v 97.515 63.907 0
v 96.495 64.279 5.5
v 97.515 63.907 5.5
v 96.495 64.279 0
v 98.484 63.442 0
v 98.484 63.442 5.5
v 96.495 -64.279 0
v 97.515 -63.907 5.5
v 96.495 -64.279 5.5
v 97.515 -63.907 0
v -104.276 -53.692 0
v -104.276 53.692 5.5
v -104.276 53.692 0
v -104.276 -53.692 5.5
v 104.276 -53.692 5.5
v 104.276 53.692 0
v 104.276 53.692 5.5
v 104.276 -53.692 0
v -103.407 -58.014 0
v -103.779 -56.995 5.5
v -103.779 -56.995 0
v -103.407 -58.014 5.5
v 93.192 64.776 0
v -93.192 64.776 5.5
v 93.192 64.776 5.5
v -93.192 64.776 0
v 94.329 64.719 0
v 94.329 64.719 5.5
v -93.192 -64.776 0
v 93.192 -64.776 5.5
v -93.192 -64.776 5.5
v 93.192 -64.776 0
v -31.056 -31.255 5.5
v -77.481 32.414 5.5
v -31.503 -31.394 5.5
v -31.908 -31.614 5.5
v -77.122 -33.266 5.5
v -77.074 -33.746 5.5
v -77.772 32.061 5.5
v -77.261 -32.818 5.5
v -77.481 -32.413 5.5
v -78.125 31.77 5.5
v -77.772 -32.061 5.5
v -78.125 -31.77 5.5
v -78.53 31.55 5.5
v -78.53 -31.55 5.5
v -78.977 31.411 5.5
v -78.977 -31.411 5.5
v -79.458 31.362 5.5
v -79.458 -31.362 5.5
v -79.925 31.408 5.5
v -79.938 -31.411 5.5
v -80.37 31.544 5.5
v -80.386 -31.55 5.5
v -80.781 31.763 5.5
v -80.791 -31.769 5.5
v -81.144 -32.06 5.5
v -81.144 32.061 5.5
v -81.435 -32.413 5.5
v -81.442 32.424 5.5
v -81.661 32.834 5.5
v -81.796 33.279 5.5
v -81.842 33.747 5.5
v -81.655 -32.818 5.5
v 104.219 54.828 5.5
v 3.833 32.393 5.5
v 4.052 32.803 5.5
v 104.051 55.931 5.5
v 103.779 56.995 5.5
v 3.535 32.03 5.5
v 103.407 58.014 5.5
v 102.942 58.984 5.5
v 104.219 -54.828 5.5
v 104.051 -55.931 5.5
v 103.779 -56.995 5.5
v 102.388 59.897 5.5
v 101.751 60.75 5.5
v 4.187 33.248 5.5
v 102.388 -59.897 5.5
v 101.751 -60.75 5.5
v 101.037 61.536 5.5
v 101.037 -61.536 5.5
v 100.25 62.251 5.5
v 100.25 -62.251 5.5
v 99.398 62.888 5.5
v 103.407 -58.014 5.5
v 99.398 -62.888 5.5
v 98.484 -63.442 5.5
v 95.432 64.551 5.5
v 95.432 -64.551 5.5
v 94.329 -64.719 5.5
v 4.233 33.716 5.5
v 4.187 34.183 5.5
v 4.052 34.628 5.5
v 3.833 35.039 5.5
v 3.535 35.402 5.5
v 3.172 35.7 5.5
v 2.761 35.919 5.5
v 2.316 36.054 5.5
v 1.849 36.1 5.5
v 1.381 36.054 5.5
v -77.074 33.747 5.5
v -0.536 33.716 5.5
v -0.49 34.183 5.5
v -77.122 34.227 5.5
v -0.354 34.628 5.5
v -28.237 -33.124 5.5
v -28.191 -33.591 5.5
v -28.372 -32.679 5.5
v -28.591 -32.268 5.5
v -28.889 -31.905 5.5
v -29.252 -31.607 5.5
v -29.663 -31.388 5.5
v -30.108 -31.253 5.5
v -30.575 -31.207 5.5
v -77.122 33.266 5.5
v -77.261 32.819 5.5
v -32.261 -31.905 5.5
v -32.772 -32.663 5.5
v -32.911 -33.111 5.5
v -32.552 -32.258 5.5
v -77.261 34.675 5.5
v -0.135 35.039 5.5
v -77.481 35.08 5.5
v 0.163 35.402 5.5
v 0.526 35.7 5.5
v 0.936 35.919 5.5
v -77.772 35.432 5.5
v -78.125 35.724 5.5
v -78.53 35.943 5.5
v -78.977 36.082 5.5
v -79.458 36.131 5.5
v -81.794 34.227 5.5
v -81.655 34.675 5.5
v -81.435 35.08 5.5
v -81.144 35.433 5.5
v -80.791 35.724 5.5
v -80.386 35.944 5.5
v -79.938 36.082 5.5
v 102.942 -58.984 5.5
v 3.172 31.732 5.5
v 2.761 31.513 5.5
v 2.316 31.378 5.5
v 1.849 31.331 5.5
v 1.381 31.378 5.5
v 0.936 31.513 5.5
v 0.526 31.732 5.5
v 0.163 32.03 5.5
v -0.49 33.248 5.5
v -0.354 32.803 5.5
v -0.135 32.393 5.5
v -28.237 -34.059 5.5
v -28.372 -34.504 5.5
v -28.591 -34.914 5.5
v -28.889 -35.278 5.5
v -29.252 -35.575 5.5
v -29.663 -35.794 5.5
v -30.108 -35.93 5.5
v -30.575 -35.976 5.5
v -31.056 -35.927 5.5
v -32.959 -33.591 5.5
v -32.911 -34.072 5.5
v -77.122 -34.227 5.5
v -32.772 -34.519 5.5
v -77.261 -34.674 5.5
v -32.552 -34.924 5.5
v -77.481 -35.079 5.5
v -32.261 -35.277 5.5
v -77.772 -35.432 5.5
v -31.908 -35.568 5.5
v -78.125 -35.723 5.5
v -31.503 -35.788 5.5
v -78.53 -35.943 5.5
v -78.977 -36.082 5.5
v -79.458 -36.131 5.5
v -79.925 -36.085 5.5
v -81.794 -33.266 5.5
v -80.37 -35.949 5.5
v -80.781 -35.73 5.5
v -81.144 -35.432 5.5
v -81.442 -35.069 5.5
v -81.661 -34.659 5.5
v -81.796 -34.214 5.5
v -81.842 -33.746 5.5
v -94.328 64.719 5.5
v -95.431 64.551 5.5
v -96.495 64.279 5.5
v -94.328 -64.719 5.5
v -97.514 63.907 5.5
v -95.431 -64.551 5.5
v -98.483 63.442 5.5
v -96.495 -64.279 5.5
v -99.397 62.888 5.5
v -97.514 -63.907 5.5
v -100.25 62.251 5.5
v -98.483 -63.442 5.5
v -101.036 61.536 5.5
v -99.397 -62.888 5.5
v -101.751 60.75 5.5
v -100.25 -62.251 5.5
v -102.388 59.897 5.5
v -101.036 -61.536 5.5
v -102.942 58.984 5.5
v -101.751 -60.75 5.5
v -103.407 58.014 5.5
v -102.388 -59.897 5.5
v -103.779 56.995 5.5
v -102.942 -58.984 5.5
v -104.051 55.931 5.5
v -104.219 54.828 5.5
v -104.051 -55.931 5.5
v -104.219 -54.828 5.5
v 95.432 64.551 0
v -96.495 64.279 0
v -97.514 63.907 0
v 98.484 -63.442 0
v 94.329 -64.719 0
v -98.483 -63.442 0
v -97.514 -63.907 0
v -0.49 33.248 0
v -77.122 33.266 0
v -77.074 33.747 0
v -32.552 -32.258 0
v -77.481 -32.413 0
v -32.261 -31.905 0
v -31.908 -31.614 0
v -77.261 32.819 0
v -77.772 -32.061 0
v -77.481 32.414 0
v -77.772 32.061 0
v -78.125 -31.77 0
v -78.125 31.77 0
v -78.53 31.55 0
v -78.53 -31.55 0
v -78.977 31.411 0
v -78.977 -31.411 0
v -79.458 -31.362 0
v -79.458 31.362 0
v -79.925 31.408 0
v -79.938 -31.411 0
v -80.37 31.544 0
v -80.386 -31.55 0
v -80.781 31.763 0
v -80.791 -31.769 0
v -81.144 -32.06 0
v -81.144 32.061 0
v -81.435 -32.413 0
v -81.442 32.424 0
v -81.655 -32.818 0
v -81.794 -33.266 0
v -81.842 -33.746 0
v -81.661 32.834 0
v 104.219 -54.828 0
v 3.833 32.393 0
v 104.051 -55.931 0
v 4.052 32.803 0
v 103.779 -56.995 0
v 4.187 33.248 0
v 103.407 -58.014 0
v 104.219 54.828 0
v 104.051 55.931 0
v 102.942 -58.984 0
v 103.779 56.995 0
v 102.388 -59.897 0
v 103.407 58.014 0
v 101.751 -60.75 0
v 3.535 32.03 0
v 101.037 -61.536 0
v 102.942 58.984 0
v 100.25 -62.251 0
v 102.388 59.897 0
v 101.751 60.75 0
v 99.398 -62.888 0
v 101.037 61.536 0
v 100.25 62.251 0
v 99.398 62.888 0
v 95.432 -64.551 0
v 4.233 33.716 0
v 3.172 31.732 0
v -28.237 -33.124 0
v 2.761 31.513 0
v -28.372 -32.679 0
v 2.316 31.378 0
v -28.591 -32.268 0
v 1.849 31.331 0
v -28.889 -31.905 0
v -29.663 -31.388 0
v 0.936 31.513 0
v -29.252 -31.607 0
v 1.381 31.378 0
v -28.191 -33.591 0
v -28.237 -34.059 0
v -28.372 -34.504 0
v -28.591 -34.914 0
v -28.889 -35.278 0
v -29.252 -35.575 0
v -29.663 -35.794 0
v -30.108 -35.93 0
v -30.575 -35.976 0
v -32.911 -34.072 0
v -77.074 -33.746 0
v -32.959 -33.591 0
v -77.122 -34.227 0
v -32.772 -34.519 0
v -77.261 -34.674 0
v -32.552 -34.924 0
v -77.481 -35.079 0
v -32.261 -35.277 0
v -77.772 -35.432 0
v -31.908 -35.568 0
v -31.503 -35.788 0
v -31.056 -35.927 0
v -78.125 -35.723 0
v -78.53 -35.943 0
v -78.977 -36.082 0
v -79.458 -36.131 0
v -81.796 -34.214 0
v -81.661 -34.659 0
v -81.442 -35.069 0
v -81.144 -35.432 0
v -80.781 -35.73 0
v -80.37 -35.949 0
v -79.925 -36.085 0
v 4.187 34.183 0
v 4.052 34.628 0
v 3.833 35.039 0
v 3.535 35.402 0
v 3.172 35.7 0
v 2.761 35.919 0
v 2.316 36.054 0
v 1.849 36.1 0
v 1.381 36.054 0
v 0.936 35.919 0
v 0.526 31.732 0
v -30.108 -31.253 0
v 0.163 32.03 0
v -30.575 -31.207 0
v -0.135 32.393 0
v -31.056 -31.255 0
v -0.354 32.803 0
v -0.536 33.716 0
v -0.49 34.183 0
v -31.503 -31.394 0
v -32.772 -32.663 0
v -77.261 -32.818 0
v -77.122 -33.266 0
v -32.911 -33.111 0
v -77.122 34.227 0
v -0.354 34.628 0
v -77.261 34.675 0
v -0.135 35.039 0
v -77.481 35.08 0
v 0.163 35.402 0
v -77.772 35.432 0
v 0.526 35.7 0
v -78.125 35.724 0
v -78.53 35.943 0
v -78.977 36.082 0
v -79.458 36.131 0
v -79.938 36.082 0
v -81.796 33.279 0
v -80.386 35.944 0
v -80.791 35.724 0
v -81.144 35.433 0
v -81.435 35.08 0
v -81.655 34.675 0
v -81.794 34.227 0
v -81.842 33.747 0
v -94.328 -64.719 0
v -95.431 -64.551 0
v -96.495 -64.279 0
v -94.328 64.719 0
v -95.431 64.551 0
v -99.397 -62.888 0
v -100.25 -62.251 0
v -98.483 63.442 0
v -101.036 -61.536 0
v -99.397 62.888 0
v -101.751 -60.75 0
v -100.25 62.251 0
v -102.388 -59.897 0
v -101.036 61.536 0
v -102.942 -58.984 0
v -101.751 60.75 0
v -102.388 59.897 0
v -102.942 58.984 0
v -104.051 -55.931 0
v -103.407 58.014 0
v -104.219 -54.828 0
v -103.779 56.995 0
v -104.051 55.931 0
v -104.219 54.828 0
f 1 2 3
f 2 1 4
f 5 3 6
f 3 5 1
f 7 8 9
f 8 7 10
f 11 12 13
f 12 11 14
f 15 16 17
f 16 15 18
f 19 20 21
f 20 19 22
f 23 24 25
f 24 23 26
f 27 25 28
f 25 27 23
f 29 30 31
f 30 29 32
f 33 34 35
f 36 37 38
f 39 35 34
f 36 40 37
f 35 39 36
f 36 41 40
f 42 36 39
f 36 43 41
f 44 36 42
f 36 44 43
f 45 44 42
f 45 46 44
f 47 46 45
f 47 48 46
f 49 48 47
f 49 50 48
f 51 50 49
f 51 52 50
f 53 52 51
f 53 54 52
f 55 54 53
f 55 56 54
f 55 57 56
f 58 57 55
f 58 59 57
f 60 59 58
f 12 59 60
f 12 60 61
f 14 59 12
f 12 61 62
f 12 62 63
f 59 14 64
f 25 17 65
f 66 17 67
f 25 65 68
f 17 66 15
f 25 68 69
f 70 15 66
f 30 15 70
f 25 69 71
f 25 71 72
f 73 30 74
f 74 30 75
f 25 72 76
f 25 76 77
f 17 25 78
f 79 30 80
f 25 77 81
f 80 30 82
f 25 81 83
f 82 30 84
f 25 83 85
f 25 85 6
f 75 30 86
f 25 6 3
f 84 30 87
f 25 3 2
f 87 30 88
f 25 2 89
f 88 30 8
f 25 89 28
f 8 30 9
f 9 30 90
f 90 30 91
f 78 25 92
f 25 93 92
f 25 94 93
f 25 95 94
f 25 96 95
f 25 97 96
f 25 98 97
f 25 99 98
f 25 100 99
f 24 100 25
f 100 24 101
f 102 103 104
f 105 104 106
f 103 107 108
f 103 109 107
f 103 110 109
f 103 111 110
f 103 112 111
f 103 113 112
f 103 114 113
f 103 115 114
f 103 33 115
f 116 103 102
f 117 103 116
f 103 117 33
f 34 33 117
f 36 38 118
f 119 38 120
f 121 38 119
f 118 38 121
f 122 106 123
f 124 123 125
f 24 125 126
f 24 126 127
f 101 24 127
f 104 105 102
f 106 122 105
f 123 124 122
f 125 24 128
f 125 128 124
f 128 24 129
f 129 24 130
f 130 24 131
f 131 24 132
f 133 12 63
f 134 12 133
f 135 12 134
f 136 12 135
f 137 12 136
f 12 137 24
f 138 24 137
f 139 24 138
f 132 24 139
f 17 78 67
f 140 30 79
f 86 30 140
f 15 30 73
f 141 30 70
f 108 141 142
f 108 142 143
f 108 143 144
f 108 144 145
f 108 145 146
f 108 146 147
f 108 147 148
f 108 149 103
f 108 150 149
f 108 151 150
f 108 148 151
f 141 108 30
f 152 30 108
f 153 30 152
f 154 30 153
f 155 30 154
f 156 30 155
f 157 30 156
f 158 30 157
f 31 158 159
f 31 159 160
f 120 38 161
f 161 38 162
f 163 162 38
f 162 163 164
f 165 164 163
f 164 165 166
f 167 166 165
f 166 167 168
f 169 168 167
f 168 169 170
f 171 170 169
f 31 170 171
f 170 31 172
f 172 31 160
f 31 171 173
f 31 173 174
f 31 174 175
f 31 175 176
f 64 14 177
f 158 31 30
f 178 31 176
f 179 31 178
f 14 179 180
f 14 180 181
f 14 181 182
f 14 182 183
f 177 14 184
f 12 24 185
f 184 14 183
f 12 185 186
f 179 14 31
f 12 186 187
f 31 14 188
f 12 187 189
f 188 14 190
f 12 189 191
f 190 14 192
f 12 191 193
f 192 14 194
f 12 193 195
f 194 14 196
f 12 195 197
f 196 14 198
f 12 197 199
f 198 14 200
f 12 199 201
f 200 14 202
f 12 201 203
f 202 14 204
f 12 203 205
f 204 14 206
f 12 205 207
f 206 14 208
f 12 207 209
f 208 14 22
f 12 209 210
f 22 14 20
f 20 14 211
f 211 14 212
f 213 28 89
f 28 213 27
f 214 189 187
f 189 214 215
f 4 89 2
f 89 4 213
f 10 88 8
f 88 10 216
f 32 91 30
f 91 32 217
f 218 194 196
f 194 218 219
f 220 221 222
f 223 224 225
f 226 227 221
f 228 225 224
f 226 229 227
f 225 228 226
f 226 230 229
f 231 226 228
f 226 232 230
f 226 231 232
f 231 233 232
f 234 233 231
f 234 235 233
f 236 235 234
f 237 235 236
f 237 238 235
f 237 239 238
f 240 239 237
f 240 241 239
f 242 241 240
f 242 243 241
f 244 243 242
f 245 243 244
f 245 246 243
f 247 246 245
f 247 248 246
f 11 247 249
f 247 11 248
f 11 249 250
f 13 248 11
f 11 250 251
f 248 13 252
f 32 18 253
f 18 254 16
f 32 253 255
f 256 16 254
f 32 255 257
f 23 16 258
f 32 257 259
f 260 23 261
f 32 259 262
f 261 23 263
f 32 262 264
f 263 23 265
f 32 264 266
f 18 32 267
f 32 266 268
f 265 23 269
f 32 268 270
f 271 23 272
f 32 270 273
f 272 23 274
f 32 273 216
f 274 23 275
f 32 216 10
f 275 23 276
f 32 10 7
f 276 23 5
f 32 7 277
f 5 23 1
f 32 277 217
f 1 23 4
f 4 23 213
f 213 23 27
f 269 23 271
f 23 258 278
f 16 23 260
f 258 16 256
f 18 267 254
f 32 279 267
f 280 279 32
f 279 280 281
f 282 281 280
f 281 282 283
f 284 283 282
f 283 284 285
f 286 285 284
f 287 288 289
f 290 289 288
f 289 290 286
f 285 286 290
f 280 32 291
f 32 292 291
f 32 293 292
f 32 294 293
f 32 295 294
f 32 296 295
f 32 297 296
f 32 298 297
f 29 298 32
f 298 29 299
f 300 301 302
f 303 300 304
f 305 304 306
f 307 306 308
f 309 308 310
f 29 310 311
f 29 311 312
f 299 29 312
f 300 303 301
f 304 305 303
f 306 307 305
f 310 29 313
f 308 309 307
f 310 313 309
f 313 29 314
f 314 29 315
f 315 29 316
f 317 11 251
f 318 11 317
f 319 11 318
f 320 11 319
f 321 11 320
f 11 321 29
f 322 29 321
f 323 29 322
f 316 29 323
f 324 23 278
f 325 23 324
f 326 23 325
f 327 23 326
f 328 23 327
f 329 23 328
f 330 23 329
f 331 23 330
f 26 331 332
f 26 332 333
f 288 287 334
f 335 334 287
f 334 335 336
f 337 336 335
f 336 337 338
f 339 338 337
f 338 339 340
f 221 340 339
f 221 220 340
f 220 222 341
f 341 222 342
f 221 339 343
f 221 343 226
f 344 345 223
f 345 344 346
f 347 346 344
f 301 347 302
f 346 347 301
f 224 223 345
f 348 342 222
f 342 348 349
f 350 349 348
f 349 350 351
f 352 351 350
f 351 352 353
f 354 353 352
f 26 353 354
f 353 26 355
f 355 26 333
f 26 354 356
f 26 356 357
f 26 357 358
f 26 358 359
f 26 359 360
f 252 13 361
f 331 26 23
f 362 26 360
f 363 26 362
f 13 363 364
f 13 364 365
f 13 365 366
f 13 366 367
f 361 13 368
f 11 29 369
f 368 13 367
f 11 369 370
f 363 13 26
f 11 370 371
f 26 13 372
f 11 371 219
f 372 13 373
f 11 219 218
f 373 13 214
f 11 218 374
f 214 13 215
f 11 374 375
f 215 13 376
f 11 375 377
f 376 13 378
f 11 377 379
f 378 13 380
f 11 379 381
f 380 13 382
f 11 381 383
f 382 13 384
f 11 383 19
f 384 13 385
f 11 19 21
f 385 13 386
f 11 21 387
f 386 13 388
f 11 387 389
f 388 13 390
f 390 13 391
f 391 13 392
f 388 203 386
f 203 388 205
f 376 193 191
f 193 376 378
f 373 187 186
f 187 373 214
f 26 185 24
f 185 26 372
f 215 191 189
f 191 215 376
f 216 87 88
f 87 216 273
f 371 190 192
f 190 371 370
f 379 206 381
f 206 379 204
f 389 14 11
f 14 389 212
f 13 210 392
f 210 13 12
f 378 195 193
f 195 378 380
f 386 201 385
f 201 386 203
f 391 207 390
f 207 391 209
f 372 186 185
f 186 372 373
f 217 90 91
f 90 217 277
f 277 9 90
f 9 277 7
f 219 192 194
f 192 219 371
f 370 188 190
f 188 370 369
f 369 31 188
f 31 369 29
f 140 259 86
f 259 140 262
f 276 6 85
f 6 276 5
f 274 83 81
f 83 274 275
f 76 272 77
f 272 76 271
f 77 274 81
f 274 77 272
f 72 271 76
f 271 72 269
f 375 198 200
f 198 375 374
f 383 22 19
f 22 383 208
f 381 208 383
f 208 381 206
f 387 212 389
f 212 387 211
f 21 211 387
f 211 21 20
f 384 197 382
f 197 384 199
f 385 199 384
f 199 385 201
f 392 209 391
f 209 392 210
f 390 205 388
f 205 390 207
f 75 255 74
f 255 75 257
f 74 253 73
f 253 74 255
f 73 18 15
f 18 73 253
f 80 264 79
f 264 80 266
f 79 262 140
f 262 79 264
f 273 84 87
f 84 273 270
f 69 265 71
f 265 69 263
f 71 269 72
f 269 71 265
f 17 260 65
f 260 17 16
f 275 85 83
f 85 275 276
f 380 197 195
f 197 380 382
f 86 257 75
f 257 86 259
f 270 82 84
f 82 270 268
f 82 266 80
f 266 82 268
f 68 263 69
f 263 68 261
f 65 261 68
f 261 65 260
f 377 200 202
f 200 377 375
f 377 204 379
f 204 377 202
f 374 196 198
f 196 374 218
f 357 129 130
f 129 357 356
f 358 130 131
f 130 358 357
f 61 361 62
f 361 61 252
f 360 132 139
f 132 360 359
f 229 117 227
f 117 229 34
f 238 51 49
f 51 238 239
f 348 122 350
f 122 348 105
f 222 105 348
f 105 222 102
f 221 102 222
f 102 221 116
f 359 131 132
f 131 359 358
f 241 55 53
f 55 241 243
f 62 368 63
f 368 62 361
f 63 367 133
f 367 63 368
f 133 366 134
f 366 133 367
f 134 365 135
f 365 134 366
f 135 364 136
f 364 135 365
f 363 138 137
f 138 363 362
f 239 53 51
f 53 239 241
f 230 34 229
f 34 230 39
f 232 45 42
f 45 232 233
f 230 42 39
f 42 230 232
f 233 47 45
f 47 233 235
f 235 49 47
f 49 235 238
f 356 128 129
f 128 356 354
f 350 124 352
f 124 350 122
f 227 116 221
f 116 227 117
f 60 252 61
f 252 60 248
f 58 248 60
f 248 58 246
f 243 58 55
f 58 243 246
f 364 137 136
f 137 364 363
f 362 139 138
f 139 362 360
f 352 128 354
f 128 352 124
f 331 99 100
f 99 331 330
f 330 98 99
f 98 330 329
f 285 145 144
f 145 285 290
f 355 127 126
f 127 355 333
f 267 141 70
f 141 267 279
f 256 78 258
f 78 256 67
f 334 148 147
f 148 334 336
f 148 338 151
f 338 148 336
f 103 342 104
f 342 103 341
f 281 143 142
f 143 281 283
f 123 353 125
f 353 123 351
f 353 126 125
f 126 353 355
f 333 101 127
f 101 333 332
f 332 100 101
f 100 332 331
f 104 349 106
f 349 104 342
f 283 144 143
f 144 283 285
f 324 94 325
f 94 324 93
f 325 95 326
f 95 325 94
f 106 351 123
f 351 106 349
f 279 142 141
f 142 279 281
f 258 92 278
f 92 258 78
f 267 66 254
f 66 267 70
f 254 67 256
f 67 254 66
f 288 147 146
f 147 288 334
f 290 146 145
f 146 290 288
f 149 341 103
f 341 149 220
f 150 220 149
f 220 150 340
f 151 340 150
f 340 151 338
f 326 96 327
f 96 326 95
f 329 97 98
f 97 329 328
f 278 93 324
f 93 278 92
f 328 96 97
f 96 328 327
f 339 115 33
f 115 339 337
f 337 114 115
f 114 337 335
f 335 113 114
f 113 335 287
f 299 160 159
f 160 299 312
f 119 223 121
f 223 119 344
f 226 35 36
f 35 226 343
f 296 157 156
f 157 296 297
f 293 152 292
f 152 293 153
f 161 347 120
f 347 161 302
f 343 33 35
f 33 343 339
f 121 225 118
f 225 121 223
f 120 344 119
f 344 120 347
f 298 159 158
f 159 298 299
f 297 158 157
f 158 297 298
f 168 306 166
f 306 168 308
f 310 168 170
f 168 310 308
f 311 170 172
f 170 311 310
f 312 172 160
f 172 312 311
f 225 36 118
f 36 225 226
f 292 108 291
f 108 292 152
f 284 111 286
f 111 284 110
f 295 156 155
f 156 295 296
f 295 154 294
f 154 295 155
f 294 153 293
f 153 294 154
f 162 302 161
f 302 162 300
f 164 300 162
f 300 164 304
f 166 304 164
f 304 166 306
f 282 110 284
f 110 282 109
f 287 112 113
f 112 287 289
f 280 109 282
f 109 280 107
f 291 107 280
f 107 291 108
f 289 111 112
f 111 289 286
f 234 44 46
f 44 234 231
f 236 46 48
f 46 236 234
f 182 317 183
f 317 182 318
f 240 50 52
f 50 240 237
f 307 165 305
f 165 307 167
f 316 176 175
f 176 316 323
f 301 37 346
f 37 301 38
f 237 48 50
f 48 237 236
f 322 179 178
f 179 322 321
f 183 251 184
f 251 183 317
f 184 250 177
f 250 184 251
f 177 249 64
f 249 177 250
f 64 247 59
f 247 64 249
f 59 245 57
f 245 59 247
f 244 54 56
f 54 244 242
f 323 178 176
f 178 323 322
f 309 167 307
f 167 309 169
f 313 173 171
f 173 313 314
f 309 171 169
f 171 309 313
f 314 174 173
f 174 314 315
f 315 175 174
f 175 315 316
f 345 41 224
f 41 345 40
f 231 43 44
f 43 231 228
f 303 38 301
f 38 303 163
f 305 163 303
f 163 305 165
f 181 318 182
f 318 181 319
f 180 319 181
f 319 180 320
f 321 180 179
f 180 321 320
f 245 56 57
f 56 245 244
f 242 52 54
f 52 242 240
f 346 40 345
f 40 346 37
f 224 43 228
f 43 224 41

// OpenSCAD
// Module names are of the form poly_<inkscape-path-id>().  As a result,
// you can associate a polygon in this OpenSCAD program with the corresponding
// SVG element in the Inkscape document by looking for the XML element with
// the attribute id="inkscape-path-id".

// fudge value is used to ensure that subtracted solids are a tad taller
// in the z dimension than the polygon being subtracted from.  This helps
// keep the resulting .stl file manifold.
fudge = 0.1;

module poly_rect4169(h)
{
  scale([25.4/90, -25.4/90, 1]) union()
  {
    difference()
    {
       linear_extrude(height=h)
         polygon([[-330.207027,-229.520500],[-334.233589,-229.318474],[-338.141301,-228.725360],[-341.910716,-227.760604],[-345.522390,-226.443650],[-348.956876,-224.793945],[-352.194730,-222.830934],[-355.216506,-220.574062],[-358.002758,-218.042775],[-360.534041,-215.256519],[-362.790909,-212.234738],[-364.753918,-208.996879],[-366.403621,-205.562388],[-367.720572,-201.950708],[-368.685327,-198.181287],[-369.278440,-194.273569],[-369.480466,-190.247000],[-369.480466,190.247100],[-369.278440,194.273668],[-368.685327,198.181382],[-367.720572,201.950799],[-366.403621,205.562472],[-364.753918,208.996956],[-362.790909,212.234807],[-360.534041,215.256578],[-358.002758,218.042825],[-355.216506,220.574102],[-352.194730,222.830965],[-348.956876,224.793968],[-345.522390,226.443666],[-341.910716,227.760613],[-338.141301,228.725364],[-334.233589,229.318475],[-330.207027,229.520500],[330.208986,229.520500],[334.235526,229.318475],[338.143176,228.725364],[341.912495,227.760613],[345.524045,226.443666],[348.958385,224.793968],[352.196076,222.830965],[355.217676,220.574102],[358.003747,218.042825],[360.534849,215.256578],[362.791541,212.234807],[364.754385,208.996956],[366.403939,205.562472],[367.720764,201.950799],[368.685420,198.181382],[369.278467,194.273668],[369.480466,190.247100],[369.480466,-190.247000],[369.278462,-194.273569],[368.685411,-198.181287],[367.720753,-201.950708],[366.403926,-205.562387],[364.754371,-208.996879],[362.791528,-212.234738],[360.534837,-215.256519],[358.003736,-218.042775],[355.217666,-220.574062],[352.196068,-222.830934],[348.958379,-224.793945],[345.524041,-226.443650],[341.912493,-227.760604],[338.143174,-228.725360],[334.235526,-229.318474],[330.208986,-229.520500],[-330.207027,-229.520500]]);
       translate([0, 0, -fudge])
         linear_extrude(height=h+2*fudge)
           polygon([[-281.542964,-128.022400],[-279.840664,-127.850574],[-278.255140,-127.358248],[-276.820345,-126.579376],[-275.570234,-125.547911],[-274.538759,-124.297808],[-273.759876,-122.863019],[-273.267538,-121.277498],[-273.095699,-119.575200],[-273.267172,-117.872576],[-273.759272,-116.286707],[-274.538034,-114.851568],[-275.569491,-113.601131],[-276.819679,-112.569372],[-278.254631,-111.790265],[-279.840381,-111.297783],[-281.542964,-111.125900],[-283.199083,-111.289634],[-284.776469,-111.768877],[-286.230786,-112.545267],[-287.517700,-113.600441],[-288.572861,-114.887365],[-289.349237,-116.341689],[-289.828465,-117.919079],[-289.992183,-119.575200],[-289.820291,-121.277762],[-289.327808,-122.863492],[-288.548705,-124.298427],[-287.516957,-125.548602],[-286.266536,-126.580051],[-284.831415,-127.358811],[-283.245567,-127.850915],[-281.542964,-128.022400]]);
       translate([0, 0, -fudge])
         linear_extrude(height=h+2*fudge)
           polygon([[6.550786,-127.915000],[8.206893,-127.751268],[9.784268,-127.272033],[11.238577,-126.495655],[12.525487,-125.440495],[13.580649,-124.153588],[14.357031,-122.699280],[14.836270,-121.121907],[15.000006,-119.465800],[14.836270,-117.809693],[14.357031,-116.232320],[13.580649,-114.778012],[12.525487,-113.491105],[11.238577,-112.435945],[9.784268,-111.659567],[8.206893,-111.180332],[6.550786,-111.016600],[4.894679,-111.180332],[3.317304,-111.659567],[1.862995,-112.435945],[0.576085,-113.491105],[-0.479077,-114.778012],[-1.255459,-116.232320],[-1.734698,-117.809693],[-1.898434,-119.465800],[-1.734698,-121.121907],[-1.255459,-122.699280],[-0.479077,-124.153588],[0.576085,-125.440495],[1.862995,-126.495655],[3.317304,-127.272033],[4.894679,-127.751268],[6.550786,-127.915000]]);
       translate([0, 0, -fudge])
         linear_extrude(height=h+2*fudge)
           polygon([[-108.337884,110.575200],[-106.681778,110.738933],[-105.104405,111.218170],[-103.650098,111.994549],[-102.363189,113.049708],[-101.308028,114.336615],[-100.531648,115.790922],[-100.052409,117.368295],[-99.888674,119.024400],[-100.052392,120.680520],[-100.531619,122.257909],[-101.307994,123.712233],[-102.363154,124.999156],[-103.650066,126.054330],[-105.104382,126.830720],[-106.681766,127.309964],[-108.337884,127.473700],[-110.040467,127.301818],[-111.626218,126.809337],[-113.061171,126.030229],[-114.311360,124.998470],[-115.342818,123.748034],[-116.121581,122.312894],[-116.613681,120.727025],[-116.785154,119.024400],[-116.613664,117.321791],[-116.121552,115.735938],[-115.342784,114.300815],[-114.311324,113.050394],[-113.061139,112.018649],[-111.626194,111.239553],[-110.040454,110.747079],[-108.337884,110.575200]]);
       translate([0, 0, -fudge])
         linear_extrude(height=h+2*fudge)
           polygon([[-281.542964,111.126000],[-279.840651,111.297829],[-278.255116,111.790162],[-276.820314,112.569045],[-275.570198,113.600524],[-274.538725,114.850644],[-273.759847,116.285449],[-273.267521,117.870986],[-273.095699,119.573300],[-273.267189,121.275908],[-273.759300,122.861761],[-274.538068,124.296884],[-275.569527,125.547304],[-276.819711,126.579049],[-278.254655,127.358145],[-279.840395,127.850620],[-281.542964,128.022500],[-283.199071,127.858768],[-284.776446,127.379532],[-286.230755,126.603154],[-287.517664,125.547995],[-288.572827,124.261088],[-289.349208,122.806780],[-289.828447,121.229406],[-289.992183,119.573300],[-289.820309,117.870723],[-289.327836,116.284976],[-288.548740,114.850024],[-287.516993,113.599833],[-286.266568,112.568370],[-284.831439,111.789600],[-283.245580,111.297488],[-281.542964,111.126000]]);
    }
  }
}

poly_rect4169(5.5);
